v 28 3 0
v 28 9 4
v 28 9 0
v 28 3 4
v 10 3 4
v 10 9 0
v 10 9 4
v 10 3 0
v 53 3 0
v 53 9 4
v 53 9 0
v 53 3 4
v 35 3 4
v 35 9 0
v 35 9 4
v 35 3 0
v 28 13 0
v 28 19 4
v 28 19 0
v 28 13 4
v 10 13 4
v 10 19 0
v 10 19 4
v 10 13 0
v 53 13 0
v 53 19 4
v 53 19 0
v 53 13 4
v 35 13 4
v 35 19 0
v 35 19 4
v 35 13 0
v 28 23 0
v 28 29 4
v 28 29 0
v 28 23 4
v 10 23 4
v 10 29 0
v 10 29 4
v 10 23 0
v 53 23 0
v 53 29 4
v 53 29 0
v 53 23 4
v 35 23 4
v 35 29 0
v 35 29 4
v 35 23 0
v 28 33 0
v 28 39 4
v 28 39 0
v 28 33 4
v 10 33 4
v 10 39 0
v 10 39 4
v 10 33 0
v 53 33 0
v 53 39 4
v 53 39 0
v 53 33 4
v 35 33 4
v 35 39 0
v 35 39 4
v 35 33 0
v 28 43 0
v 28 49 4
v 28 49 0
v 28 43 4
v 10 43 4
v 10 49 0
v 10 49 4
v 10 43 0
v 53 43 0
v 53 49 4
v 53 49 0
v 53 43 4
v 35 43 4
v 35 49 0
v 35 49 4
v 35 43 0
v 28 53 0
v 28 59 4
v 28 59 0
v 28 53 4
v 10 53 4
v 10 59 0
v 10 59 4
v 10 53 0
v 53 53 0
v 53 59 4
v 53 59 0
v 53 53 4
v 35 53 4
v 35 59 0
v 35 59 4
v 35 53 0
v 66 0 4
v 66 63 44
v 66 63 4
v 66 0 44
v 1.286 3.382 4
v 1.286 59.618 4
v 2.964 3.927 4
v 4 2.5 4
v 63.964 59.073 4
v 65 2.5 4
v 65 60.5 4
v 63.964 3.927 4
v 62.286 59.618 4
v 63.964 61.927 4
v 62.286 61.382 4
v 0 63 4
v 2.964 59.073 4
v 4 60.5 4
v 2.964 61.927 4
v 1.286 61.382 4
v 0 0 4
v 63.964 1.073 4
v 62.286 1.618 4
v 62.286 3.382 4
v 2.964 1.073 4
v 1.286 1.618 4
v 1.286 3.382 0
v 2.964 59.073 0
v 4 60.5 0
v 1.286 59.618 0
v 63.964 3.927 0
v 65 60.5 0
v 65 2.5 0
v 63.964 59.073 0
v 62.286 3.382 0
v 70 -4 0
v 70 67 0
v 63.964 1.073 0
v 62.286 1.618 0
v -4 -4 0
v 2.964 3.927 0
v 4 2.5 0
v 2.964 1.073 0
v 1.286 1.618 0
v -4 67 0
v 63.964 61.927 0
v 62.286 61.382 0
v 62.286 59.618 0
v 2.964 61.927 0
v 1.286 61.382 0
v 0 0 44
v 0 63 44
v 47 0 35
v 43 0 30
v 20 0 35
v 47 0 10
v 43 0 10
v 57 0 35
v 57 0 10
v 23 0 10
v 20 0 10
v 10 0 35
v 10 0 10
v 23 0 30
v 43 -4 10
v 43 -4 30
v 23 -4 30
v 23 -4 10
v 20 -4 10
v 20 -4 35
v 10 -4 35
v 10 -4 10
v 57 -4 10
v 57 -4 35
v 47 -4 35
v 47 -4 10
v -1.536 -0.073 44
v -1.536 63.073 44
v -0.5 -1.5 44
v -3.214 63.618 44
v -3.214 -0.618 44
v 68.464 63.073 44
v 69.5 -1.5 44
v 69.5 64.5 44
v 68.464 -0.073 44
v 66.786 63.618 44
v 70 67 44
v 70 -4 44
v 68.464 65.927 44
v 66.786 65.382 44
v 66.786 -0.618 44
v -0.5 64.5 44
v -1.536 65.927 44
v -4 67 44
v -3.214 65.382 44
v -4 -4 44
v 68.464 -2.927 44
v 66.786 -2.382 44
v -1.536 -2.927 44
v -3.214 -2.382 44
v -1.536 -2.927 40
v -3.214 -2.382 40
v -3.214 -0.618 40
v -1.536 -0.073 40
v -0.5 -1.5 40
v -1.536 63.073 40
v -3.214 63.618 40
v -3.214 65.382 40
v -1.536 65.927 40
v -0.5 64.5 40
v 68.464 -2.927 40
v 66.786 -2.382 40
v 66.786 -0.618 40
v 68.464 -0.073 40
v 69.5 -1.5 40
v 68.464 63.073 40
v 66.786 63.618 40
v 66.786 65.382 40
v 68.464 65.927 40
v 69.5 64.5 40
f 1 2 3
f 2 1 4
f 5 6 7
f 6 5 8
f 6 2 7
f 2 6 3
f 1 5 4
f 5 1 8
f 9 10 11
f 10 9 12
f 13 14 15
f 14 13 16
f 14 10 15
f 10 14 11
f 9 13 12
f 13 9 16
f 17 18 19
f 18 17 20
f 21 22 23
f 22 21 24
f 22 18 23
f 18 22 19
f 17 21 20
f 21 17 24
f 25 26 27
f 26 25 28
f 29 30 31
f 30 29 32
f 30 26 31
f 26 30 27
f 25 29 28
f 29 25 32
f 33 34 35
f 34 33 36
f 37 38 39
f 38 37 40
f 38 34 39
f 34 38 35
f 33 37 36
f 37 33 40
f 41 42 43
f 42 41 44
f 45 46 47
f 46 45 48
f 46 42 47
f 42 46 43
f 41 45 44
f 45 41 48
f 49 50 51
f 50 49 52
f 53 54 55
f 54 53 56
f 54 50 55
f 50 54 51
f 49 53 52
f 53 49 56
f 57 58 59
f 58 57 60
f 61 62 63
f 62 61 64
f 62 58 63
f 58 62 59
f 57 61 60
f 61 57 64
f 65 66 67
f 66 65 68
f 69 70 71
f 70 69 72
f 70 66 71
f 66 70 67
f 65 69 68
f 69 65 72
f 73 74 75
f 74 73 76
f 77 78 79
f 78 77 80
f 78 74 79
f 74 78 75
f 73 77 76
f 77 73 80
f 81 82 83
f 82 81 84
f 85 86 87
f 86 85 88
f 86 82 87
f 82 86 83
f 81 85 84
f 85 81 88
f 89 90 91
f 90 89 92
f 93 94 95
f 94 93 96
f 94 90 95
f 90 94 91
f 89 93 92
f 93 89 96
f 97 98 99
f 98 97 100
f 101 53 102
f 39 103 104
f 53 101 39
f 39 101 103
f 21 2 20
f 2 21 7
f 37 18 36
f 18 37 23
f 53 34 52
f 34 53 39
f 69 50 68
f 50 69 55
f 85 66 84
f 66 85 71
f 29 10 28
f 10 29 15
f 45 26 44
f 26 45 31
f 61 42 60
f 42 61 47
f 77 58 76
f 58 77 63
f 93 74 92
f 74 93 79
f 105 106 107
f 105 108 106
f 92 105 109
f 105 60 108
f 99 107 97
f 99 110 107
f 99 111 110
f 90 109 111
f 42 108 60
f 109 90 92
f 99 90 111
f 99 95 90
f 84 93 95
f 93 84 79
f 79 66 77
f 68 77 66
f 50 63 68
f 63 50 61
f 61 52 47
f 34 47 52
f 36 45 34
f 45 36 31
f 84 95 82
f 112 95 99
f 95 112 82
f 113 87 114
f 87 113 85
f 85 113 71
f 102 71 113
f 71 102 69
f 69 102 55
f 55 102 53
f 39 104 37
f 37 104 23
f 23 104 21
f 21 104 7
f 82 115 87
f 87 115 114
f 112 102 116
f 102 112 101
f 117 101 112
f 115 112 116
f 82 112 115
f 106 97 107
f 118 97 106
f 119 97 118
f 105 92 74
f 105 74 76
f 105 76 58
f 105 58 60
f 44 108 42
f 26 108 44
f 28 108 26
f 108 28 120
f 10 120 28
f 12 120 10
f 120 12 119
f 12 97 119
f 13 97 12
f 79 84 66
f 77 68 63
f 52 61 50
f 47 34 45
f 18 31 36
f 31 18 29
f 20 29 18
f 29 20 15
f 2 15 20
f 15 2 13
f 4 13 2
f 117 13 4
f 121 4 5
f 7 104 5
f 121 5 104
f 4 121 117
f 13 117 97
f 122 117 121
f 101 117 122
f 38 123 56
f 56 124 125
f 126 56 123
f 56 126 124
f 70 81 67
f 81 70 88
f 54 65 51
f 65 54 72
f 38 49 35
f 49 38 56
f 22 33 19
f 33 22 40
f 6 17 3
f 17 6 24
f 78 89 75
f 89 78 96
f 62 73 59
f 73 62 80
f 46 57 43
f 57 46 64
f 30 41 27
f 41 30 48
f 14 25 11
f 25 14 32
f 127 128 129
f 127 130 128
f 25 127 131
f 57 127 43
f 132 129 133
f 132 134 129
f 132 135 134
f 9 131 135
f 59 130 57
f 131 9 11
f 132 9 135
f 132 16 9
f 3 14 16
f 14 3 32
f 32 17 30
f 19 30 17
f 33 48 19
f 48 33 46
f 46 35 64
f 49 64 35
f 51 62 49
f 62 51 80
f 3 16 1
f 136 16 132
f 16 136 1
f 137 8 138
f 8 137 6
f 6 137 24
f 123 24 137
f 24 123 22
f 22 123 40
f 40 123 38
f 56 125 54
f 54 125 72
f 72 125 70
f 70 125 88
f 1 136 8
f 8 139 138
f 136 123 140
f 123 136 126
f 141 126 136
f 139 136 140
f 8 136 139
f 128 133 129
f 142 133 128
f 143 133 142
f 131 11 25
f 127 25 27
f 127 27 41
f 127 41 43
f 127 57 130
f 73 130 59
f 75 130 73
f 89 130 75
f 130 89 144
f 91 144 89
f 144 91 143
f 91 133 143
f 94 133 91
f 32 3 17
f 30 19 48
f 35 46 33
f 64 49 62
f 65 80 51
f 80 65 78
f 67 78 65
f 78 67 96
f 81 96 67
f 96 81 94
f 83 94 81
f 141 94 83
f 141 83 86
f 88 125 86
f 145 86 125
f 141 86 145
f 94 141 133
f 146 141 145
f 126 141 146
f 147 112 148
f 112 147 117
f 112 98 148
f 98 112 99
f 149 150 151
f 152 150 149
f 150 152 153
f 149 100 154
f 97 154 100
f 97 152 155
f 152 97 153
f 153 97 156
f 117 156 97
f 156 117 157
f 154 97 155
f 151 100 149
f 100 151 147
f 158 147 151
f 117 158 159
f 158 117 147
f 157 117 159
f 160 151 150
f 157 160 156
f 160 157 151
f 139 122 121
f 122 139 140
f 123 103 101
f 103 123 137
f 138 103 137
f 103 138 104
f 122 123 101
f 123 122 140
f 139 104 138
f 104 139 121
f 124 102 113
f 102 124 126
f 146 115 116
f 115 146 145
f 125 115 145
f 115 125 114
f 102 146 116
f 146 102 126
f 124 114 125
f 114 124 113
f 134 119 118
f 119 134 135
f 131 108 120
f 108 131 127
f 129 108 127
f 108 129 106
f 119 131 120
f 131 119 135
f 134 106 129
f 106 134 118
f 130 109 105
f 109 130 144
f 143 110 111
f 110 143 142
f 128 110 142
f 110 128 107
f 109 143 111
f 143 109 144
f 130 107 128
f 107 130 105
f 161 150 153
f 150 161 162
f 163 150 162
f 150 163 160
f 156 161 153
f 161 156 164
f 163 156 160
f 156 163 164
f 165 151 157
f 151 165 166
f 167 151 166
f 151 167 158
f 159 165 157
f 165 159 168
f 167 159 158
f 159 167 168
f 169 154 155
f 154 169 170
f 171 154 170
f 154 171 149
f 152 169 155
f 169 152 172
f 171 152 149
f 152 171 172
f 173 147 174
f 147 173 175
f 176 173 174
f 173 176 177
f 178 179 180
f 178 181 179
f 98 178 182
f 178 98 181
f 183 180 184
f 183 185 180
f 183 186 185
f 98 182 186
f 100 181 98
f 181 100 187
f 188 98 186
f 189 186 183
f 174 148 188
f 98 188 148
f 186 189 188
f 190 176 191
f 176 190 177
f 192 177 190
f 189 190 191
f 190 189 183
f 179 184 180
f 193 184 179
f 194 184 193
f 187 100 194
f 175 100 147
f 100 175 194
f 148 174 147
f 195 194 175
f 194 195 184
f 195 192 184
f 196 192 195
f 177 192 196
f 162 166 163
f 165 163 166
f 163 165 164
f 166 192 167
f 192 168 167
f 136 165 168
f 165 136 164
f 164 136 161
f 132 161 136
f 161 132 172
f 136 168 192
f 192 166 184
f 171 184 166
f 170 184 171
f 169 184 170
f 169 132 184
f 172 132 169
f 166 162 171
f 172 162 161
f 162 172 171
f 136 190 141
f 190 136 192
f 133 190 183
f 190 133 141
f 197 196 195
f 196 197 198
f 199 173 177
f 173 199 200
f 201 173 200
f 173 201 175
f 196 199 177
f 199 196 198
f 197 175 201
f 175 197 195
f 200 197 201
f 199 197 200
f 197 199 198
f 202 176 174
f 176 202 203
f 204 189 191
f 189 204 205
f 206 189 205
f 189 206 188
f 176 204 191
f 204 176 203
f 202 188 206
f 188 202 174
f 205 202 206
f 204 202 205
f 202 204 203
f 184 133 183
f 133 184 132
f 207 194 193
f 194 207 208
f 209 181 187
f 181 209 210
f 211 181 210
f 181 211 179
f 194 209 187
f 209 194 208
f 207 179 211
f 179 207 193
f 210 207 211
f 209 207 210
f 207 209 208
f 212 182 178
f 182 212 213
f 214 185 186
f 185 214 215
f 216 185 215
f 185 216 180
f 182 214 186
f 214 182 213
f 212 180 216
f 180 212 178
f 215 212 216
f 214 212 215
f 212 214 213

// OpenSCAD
module base(center=true) {
    wid = 2.5;

    base_width = 66;
    base_depth = 63;
    base_height = 4;
    cylinder_height = 20;
    cylinder_dia = 3;

    difference() {
        cube([base_width, base_depth, base_height]);

        translate([wid, wid, -2]) cylinder(h=cylinder_height, d=cylinder_dia);
        translate([wid, base_depth - wid, -2]) cylinder(h=cylinder_height, d=cylinder_dia);
        translate([base_width - wid, wid, -2]) cylinder(h=cylinder_height, d=cylinder_dia);
        translate([base_width - wid,base_depth - wid, -2]) cylinder(h=cylinder_height, d=cylinder_dia);


        opening = 18;

        for (y = [0 : 5]){
            translate([10, y * 10 + 3, -4]) cube([opening, 6, 10]);
            translate([base_depth - (10 + opening), y * 10 + 3, -4]) cube([opening, 6, 10]);
        }
    }
}


module wall(with_title=false,with_openings=false) {
    thickness = 4;

    base_width = 66;
    base_depth = 63;
    
    wall_height = 40;


    difference() {
        cube([base_width, thickness, wall_height + thickness]);
       
        if (with_openings) {            
            translate([(base_width / 2) - 10,-10,10]) cube([20, 20, 20]);
            translate([10,-3,10]) cube([10, 10, 25]);
            translate([14 + (base_width / 2),-3,10]) cube([10, 10, 25]);
        }
        
        if (with_title) {
            translate([23.5, 0, 36]) rotate([90,0,0]) text("WLED", size=5);
        }

    }
}

module side_wall() {
    thickness = 4;

    base_width = 66;
    base_depth = 63;
    
    wall_height = 40;
    
    difference() {
        cube([thickness, base_depth + thickness * 2, wall_height + thickness]);
        translate([2,2.5,40]) cylinder(h=5, d=3);
        translate([2,68.5,40]) cylinder(h=5, d=3);
    }  
 }


base();
translate([0,-4,0]) wall(with_title=true, with_openings=true);
translate([0,63,0]) wall();
translate([-4,-4,0]) side_wall();
translate([66,-4,0]) side_wall();


echo(version=version());
